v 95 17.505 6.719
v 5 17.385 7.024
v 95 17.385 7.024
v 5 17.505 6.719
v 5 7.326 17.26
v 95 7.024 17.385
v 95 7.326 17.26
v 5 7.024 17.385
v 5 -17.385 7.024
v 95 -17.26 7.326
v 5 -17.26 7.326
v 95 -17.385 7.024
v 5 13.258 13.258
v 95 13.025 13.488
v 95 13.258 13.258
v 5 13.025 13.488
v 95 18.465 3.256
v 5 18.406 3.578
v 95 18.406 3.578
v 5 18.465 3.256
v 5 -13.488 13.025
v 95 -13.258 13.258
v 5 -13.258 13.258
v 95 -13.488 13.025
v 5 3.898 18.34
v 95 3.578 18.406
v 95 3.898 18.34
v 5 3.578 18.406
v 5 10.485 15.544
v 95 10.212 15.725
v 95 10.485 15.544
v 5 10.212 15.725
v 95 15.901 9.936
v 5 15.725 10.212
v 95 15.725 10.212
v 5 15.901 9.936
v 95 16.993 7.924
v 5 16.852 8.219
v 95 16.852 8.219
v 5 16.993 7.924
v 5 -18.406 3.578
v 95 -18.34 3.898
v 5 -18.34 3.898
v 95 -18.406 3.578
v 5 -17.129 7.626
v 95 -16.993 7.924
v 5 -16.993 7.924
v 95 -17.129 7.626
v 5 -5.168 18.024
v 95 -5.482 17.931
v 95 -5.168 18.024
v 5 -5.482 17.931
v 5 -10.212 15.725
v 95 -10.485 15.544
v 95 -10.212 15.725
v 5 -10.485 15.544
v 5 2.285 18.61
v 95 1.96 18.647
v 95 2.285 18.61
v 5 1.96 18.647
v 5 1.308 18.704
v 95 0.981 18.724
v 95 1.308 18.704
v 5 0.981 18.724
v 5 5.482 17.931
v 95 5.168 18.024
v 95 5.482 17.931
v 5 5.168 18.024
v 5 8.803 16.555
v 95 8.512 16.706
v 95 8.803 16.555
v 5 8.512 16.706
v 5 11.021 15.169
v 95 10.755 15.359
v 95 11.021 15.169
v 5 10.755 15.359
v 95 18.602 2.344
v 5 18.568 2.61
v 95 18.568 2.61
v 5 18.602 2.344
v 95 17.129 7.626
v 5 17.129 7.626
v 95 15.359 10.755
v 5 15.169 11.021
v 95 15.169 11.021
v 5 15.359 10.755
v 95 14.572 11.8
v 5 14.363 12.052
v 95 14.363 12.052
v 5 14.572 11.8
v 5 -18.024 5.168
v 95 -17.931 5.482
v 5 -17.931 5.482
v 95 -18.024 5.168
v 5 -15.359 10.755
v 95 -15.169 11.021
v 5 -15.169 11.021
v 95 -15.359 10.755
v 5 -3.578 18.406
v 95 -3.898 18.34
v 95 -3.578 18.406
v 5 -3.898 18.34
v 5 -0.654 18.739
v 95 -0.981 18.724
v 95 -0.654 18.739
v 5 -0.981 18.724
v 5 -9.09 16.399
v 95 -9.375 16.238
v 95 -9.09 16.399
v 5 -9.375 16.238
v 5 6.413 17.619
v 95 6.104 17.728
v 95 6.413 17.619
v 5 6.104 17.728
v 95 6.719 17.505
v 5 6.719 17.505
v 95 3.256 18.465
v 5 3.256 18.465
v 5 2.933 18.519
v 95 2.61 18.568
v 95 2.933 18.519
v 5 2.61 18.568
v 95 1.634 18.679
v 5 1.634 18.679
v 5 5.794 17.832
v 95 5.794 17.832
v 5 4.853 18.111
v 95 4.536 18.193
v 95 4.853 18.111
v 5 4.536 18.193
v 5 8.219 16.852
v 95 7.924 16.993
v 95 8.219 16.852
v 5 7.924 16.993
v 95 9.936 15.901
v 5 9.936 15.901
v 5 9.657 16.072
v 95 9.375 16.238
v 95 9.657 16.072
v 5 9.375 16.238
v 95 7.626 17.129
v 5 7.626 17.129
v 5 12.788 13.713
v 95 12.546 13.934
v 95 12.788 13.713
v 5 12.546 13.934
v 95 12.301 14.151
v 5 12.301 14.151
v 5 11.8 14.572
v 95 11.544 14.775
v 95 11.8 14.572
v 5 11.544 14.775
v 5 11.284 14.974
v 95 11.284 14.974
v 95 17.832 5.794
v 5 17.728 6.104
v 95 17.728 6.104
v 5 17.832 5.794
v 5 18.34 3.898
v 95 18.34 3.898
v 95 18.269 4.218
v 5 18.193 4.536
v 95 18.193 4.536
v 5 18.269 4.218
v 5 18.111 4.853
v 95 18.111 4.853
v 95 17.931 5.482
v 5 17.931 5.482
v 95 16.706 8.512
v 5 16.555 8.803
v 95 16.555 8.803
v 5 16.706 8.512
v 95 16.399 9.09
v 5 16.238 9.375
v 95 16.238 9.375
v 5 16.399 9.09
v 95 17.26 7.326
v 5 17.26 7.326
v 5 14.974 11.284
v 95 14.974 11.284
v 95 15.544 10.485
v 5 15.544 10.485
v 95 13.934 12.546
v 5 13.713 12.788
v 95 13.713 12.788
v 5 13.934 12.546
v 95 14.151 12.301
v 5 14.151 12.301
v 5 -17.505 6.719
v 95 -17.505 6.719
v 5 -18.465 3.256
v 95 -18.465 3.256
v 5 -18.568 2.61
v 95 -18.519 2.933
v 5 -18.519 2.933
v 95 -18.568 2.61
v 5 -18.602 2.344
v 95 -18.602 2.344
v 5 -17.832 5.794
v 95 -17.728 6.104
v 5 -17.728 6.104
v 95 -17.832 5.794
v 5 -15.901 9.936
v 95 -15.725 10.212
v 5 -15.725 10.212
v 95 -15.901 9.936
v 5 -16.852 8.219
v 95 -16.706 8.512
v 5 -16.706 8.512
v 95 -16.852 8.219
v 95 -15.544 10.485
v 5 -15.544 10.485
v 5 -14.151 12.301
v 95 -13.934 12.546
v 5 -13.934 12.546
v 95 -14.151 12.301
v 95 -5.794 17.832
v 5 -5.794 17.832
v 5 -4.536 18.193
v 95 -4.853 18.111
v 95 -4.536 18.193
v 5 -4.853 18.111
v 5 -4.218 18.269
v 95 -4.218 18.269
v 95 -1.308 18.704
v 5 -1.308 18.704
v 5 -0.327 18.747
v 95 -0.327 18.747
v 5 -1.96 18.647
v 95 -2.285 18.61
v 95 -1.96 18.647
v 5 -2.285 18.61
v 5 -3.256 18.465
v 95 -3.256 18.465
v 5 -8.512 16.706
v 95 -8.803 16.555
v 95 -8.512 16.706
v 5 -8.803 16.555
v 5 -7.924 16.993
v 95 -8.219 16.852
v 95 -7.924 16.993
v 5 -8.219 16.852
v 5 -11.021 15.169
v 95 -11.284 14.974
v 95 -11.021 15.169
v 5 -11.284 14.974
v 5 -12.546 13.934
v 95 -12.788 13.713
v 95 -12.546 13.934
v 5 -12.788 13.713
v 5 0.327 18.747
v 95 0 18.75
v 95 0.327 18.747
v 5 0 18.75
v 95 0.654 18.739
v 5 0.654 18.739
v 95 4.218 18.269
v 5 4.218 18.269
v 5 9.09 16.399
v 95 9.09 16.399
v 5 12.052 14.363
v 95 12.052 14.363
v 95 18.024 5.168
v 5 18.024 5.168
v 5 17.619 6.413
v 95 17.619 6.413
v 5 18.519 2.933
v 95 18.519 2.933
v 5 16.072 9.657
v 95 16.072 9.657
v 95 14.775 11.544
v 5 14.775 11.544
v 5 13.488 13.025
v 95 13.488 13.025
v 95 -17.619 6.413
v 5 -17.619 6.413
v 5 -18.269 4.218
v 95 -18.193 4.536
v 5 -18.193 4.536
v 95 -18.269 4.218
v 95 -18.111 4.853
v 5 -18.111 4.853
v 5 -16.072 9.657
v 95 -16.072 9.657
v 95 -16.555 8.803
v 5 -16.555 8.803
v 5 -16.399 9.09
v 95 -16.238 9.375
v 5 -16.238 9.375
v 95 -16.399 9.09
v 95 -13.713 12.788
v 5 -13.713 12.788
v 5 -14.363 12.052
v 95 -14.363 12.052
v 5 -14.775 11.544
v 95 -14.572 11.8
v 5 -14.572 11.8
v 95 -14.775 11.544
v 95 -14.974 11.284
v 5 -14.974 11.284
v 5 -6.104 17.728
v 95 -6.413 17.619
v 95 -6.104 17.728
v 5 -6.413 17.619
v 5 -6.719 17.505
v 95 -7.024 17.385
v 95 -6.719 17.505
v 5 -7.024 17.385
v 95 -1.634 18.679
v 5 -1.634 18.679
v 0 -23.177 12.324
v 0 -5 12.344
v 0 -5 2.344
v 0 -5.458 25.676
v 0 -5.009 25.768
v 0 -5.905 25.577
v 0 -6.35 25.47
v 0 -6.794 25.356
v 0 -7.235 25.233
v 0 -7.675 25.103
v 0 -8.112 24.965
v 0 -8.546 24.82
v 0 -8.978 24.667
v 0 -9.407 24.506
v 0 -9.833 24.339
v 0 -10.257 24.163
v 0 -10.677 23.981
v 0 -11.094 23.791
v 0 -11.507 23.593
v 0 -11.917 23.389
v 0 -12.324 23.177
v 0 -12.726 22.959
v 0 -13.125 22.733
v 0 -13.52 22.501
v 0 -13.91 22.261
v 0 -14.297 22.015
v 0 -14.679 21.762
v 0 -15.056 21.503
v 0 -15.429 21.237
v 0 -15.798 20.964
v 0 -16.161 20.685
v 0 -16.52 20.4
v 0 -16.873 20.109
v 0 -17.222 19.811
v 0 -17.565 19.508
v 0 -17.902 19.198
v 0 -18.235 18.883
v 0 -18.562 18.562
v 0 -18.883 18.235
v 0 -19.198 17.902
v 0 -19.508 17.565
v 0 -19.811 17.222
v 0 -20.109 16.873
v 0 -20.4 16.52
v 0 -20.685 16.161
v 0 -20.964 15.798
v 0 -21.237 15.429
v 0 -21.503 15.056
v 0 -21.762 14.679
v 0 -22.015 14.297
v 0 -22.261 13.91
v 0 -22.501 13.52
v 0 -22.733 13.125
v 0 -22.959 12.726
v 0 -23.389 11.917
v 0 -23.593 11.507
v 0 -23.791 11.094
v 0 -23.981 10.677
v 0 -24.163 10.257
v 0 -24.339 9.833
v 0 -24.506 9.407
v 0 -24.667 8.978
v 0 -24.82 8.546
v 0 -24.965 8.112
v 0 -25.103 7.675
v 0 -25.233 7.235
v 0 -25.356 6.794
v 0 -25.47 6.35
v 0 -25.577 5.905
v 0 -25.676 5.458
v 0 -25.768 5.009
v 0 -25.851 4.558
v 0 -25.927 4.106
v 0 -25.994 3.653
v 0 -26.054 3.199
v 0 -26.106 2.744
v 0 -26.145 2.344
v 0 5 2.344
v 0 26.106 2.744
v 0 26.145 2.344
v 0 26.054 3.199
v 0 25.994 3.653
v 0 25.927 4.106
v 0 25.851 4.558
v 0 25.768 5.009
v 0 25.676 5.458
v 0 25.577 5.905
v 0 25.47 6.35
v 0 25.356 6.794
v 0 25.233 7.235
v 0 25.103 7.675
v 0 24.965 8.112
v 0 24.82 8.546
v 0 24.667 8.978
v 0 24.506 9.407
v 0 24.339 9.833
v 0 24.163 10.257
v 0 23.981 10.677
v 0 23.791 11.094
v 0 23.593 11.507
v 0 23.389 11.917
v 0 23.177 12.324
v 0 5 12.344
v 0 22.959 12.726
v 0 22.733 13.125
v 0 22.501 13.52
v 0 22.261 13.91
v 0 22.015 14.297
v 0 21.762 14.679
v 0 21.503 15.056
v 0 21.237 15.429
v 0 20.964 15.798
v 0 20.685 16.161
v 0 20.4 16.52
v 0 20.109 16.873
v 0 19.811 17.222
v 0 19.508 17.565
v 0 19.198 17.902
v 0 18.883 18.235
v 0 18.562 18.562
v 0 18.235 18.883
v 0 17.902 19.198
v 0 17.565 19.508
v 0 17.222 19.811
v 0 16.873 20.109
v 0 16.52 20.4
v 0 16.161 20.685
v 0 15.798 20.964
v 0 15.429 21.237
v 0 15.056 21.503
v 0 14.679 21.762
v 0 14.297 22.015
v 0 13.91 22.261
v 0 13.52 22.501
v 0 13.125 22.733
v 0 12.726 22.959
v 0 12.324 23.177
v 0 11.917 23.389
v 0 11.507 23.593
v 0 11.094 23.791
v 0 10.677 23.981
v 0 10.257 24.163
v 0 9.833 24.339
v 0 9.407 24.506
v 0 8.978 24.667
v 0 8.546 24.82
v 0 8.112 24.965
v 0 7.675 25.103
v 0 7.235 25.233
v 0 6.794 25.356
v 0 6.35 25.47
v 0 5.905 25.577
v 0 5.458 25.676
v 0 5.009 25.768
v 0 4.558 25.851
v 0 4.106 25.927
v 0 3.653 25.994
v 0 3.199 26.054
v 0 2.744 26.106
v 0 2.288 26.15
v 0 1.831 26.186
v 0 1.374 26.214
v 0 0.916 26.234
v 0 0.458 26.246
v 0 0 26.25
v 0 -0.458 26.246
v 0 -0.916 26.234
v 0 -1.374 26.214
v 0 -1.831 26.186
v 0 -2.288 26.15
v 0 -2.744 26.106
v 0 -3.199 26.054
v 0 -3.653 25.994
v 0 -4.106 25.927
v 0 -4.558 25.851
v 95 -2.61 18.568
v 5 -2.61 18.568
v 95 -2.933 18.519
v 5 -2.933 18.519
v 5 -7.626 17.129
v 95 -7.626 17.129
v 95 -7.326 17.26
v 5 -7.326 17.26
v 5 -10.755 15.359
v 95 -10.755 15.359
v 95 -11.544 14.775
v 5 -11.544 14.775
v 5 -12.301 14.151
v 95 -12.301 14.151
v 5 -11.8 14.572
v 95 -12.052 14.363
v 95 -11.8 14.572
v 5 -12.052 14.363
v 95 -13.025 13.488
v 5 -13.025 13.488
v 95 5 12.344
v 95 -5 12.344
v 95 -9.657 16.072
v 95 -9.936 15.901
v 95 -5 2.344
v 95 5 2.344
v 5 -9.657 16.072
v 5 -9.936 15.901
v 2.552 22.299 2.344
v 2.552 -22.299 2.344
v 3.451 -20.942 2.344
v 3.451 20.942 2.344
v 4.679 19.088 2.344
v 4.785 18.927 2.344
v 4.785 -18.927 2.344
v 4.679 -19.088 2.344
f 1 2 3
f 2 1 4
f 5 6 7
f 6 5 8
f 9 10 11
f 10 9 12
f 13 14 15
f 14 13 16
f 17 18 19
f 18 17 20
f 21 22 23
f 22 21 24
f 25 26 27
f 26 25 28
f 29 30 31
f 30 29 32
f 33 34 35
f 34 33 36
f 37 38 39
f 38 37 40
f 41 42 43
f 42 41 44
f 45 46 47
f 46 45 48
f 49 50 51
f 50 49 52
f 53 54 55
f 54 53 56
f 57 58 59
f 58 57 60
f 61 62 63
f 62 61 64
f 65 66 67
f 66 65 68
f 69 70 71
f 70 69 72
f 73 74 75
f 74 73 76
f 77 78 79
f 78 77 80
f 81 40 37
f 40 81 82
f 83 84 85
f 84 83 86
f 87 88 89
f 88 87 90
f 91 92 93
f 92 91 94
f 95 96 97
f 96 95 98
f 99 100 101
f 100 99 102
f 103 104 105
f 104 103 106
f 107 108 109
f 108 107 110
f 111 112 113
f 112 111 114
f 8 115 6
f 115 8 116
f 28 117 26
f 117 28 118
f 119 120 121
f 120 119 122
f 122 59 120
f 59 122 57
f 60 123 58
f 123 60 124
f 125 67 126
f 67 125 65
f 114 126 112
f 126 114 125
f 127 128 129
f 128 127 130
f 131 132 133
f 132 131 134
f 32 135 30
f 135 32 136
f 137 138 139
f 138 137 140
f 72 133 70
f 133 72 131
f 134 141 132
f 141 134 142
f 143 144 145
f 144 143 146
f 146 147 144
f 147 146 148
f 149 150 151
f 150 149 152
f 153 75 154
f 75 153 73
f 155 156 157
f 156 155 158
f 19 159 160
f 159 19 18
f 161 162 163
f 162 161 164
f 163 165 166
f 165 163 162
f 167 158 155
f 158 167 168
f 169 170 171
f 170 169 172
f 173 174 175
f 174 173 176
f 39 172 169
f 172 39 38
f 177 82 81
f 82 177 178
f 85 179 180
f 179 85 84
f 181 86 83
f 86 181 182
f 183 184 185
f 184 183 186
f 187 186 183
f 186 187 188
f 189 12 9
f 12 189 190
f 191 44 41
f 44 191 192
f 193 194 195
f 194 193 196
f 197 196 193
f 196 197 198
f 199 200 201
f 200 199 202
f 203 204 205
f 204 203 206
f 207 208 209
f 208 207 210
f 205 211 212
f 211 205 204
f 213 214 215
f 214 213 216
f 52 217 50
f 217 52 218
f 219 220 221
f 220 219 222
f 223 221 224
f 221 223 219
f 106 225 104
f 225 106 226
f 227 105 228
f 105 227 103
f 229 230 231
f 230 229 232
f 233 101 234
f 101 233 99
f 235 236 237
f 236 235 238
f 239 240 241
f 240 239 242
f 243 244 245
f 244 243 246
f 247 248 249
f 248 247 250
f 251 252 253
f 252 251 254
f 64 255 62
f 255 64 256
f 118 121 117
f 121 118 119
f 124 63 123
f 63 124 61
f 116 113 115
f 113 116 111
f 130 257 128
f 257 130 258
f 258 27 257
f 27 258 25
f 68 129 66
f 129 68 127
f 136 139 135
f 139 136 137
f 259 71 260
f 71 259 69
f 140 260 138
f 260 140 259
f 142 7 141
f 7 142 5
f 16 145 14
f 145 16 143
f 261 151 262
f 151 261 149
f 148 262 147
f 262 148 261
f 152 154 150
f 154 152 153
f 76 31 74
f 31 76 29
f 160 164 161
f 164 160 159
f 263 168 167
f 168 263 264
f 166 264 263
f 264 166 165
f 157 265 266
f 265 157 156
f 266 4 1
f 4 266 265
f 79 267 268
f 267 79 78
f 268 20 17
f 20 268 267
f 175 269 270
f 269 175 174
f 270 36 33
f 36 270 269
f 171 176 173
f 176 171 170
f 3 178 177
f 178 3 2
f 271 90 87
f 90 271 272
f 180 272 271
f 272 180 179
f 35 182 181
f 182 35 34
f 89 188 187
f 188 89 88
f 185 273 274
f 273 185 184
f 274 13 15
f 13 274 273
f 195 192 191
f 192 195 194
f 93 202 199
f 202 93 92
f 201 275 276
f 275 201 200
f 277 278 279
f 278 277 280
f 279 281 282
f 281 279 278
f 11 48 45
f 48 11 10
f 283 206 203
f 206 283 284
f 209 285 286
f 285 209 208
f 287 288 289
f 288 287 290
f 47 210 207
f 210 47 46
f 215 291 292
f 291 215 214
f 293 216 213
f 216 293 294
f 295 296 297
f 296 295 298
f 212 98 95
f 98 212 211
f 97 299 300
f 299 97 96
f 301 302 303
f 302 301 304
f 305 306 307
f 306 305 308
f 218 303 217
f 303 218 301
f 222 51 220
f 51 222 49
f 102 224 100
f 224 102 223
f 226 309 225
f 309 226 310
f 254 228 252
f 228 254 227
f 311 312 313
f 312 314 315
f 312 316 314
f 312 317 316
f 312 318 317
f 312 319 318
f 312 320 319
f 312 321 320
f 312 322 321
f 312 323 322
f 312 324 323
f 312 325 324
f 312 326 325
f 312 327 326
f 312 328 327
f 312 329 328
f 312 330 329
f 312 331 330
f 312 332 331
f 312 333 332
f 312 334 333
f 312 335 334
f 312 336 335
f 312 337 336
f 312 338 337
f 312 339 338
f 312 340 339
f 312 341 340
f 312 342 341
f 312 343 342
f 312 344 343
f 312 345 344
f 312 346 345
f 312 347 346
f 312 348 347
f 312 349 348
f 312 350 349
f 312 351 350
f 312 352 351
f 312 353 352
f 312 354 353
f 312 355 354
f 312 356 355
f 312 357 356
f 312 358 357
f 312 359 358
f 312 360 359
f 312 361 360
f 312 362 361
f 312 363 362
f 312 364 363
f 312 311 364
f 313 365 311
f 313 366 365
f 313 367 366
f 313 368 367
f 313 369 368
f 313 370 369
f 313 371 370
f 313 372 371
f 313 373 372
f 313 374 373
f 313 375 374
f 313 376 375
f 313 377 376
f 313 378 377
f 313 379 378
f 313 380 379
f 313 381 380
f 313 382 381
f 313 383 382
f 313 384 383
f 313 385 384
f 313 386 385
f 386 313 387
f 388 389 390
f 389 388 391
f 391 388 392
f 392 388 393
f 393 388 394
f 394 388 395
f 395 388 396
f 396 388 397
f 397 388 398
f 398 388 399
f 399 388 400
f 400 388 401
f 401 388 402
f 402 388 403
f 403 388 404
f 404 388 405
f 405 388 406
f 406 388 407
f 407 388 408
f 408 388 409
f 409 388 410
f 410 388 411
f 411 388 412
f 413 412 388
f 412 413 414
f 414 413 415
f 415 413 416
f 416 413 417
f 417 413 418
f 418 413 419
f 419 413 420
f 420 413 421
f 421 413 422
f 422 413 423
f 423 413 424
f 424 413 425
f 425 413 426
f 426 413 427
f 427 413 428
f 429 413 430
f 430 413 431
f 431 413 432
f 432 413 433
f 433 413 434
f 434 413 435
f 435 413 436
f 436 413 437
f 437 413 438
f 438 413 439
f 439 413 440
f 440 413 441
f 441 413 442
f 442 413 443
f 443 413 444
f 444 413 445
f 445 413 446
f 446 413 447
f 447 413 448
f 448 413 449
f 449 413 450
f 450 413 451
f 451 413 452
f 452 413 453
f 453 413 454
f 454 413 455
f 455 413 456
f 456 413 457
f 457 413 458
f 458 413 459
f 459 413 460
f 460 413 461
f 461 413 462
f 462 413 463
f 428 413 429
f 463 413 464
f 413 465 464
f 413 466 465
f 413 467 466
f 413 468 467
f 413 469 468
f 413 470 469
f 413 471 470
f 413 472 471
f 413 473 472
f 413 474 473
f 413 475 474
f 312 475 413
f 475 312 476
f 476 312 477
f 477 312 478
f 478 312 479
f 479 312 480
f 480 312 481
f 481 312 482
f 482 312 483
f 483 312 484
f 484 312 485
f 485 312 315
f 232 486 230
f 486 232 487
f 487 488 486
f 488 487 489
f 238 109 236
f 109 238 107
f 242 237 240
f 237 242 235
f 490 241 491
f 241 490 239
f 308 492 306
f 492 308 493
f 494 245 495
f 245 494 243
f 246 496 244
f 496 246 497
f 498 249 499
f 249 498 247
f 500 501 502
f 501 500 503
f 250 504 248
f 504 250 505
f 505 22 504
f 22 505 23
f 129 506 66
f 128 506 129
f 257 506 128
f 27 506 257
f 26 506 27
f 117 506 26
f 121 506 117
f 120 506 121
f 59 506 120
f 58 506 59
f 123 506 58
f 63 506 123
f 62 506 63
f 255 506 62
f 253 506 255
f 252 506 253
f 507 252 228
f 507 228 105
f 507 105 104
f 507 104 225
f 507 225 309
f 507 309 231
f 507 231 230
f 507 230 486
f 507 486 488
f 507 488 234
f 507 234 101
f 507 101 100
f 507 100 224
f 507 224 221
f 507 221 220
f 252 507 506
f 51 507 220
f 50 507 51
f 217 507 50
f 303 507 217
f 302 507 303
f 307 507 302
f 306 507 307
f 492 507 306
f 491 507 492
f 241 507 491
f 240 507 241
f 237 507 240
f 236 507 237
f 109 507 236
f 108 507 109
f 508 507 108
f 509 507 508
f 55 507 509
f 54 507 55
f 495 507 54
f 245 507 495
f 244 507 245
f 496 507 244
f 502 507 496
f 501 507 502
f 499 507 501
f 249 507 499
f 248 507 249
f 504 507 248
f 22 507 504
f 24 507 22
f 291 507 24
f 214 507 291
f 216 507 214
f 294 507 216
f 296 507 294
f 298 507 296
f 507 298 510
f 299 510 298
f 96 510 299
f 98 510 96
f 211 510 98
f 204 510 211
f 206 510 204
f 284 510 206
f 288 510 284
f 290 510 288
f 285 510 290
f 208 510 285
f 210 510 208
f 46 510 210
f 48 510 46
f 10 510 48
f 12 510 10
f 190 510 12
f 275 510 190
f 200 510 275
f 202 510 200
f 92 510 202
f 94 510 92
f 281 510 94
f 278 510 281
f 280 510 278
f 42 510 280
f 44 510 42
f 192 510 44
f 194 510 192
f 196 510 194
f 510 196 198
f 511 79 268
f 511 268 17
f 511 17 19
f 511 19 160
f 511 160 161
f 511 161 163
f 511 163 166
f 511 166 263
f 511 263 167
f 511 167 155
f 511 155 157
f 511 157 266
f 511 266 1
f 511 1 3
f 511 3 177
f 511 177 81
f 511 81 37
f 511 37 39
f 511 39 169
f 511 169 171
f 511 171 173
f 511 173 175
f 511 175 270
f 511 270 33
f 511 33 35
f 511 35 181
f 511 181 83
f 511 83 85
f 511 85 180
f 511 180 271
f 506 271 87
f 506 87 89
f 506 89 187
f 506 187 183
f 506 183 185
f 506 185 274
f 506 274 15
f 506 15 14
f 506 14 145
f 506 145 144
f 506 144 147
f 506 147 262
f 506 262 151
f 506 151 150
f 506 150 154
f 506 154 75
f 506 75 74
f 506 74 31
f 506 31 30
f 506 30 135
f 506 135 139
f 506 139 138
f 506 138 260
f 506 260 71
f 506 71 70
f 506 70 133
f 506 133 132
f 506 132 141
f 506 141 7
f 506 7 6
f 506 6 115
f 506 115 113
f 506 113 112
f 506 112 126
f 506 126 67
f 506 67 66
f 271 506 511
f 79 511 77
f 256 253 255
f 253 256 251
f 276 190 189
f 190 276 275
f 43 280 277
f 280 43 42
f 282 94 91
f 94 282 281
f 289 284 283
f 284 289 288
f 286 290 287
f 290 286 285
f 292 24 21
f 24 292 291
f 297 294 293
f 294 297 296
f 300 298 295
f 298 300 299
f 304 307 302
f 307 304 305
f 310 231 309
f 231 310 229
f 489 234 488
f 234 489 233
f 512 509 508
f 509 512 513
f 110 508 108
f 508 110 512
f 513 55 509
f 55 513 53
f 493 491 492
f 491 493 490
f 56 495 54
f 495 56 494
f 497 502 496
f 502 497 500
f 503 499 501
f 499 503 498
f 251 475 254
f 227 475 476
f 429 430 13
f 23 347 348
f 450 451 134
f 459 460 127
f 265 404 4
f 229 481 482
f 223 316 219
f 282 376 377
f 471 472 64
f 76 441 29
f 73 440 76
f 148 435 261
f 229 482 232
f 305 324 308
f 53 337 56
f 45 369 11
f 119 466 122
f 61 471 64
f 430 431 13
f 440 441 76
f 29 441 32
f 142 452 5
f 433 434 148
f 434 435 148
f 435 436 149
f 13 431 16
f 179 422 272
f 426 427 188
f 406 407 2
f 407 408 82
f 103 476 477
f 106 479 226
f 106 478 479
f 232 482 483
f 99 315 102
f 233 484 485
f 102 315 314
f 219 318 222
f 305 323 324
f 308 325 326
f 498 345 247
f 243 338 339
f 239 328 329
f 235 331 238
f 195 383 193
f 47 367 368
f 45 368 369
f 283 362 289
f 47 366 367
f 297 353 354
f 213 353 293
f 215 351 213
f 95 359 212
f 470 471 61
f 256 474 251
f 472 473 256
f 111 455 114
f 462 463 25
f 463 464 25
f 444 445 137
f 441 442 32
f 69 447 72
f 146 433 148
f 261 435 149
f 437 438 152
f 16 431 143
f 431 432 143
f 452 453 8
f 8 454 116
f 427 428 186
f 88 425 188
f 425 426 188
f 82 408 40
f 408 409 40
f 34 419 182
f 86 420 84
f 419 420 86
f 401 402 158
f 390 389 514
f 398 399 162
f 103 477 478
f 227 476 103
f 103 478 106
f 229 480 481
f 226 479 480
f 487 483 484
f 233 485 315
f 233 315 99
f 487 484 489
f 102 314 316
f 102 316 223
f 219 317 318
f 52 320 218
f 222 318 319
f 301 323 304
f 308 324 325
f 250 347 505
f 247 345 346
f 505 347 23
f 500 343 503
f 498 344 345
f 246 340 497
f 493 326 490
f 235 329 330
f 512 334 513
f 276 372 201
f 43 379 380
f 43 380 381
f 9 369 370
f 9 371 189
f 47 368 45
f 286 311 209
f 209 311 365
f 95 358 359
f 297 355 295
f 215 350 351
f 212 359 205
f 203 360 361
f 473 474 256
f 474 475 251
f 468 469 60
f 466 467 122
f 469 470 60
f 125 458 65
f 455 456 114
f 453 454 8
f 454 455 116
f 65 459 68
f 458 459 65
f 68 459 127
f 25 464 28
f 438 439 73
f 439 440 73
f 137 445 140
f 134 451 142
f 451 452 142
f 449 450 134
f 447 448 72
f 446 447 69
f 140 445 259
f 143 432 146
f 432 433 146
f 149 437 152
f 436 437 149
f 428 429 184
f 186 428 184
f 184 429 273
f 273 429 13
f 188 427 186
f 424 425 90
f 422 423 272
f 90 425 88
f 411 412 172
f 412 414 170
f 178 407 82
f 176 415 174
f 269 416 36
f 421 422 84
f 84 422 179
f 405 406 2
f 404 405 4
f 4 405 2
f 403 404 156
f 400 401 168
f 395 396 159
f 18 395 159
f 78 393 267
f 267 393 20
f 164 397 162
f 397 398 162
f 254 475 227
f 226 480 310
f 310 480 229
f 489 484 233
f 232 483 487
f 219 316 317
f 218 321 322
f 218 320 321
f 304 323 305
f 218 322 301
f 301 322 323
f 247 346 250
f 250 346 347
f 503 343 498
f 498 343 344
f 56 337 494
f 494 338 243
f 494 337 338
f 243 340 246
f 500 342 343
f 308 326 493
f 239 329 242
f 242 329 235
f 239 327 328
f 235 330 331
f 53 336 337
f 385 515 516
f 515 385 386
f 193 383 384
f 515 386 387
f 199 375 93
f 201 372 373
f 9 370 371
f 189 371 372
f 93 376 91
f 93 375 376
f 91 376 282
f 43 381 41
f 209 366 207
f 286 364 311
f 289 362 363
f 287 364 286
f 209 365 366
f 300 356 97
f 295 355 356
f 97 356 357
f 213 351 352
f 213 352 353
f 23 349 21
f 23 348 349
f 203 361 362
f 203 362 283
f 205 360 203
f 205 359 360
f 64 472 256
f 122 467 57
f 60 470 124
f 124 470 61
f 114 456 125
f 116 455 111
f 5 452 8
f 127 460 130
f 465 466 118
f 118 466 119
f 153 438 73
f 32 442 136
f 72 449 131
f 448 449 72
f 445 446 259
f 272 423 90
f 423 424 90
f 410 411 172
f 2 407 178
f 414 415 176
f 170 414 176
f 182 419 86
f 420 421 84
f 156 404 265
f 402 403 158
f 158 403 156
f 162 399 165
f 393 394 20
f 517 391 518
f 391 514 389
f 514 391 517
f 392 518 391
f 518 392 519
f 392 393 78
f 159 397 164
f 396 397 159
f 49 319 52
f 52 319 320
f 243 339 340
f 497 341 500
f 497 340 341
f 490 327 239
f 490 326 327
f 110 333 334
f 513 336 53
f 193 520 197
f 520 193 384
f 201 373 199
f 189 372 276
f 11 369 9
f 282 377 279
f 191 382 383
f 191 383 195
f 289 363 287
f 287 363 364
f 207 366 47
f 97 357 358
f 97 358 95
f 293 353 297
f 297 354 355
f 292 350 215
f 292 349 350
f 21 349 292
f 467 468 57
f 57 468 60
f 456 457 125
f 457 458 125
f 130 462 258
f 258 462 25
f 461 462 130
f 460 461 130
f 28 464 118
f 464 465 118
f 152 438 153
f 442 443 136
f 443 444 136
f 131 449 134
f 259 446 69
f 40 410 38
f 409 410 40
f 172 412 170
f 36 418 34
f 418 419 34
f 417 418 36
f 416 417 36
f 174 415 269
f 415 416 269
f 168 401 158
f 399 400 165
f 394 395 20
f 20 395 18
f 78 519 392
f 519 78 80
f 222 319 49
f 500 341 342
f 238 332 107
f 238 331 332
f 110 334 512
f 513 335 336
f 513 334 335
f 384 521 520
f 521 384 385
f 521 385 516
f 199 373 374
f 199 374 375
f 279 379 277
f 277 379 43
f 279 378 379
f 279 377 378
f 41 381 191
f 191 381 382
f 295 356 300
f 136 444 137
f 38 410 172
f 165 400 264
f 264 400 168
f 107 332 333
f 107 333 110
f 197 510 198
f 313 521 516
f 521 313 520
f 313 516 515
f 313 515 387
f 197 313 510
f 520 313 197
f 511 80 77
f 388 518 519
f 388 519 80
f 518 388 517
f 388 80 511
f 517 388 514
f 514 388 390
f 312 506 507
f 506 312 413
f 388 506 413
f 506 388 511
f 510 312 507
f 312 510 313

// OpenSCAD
//
// inspired by 
//   http://www.thingiverse.com/thing:1353400  - Lulzbot Mini filament spool bushing
//   by ggrieves is licensed under the Creative Commons - Attribution license.

// Email: dpcrook@users.noreply.github.com

// resized dimensions to fit spools with a inner diameter of ~38mm

spool_inner_r=37.5/2;
length=90+5;

holder_w = 10;
holder_h = holder_w;

cut_offset = (1/8)*spool_inner_r;

flange_largest_r = spool_inner_r + 7.5;
flange_width = 5;

// small number
e=.02;

cut_plane_r = spool_inner_r + flange_largest_r + (flange_largest_r - spool_inner_r);

rotate(a=[0,90,0]) 
difference(){
    union() {
        cylinder(length, r1 = spool_inner_r, r2 = spool_inner_r, $fn=360);
        // add a flange
        cylinder(flange_width, r1 = flange_largest_r, r2 = spool_inner_r, $fn=360);
    }
    // chop off over half of circle, making semi-circle cylinder
    translate ([-cut_offset, -(cut_plane_r)/2 - e, -e]) cube([cut_plane_r+2*e,  cut_plane_r+2*e, length+2*e]);

    // cut out notch to sit on spool holder arm
    translate ([-(cut_offset + holder_h), -holder_w/2, -e]) cube([holder_h+e, holder_w, length+2*e]);
};
